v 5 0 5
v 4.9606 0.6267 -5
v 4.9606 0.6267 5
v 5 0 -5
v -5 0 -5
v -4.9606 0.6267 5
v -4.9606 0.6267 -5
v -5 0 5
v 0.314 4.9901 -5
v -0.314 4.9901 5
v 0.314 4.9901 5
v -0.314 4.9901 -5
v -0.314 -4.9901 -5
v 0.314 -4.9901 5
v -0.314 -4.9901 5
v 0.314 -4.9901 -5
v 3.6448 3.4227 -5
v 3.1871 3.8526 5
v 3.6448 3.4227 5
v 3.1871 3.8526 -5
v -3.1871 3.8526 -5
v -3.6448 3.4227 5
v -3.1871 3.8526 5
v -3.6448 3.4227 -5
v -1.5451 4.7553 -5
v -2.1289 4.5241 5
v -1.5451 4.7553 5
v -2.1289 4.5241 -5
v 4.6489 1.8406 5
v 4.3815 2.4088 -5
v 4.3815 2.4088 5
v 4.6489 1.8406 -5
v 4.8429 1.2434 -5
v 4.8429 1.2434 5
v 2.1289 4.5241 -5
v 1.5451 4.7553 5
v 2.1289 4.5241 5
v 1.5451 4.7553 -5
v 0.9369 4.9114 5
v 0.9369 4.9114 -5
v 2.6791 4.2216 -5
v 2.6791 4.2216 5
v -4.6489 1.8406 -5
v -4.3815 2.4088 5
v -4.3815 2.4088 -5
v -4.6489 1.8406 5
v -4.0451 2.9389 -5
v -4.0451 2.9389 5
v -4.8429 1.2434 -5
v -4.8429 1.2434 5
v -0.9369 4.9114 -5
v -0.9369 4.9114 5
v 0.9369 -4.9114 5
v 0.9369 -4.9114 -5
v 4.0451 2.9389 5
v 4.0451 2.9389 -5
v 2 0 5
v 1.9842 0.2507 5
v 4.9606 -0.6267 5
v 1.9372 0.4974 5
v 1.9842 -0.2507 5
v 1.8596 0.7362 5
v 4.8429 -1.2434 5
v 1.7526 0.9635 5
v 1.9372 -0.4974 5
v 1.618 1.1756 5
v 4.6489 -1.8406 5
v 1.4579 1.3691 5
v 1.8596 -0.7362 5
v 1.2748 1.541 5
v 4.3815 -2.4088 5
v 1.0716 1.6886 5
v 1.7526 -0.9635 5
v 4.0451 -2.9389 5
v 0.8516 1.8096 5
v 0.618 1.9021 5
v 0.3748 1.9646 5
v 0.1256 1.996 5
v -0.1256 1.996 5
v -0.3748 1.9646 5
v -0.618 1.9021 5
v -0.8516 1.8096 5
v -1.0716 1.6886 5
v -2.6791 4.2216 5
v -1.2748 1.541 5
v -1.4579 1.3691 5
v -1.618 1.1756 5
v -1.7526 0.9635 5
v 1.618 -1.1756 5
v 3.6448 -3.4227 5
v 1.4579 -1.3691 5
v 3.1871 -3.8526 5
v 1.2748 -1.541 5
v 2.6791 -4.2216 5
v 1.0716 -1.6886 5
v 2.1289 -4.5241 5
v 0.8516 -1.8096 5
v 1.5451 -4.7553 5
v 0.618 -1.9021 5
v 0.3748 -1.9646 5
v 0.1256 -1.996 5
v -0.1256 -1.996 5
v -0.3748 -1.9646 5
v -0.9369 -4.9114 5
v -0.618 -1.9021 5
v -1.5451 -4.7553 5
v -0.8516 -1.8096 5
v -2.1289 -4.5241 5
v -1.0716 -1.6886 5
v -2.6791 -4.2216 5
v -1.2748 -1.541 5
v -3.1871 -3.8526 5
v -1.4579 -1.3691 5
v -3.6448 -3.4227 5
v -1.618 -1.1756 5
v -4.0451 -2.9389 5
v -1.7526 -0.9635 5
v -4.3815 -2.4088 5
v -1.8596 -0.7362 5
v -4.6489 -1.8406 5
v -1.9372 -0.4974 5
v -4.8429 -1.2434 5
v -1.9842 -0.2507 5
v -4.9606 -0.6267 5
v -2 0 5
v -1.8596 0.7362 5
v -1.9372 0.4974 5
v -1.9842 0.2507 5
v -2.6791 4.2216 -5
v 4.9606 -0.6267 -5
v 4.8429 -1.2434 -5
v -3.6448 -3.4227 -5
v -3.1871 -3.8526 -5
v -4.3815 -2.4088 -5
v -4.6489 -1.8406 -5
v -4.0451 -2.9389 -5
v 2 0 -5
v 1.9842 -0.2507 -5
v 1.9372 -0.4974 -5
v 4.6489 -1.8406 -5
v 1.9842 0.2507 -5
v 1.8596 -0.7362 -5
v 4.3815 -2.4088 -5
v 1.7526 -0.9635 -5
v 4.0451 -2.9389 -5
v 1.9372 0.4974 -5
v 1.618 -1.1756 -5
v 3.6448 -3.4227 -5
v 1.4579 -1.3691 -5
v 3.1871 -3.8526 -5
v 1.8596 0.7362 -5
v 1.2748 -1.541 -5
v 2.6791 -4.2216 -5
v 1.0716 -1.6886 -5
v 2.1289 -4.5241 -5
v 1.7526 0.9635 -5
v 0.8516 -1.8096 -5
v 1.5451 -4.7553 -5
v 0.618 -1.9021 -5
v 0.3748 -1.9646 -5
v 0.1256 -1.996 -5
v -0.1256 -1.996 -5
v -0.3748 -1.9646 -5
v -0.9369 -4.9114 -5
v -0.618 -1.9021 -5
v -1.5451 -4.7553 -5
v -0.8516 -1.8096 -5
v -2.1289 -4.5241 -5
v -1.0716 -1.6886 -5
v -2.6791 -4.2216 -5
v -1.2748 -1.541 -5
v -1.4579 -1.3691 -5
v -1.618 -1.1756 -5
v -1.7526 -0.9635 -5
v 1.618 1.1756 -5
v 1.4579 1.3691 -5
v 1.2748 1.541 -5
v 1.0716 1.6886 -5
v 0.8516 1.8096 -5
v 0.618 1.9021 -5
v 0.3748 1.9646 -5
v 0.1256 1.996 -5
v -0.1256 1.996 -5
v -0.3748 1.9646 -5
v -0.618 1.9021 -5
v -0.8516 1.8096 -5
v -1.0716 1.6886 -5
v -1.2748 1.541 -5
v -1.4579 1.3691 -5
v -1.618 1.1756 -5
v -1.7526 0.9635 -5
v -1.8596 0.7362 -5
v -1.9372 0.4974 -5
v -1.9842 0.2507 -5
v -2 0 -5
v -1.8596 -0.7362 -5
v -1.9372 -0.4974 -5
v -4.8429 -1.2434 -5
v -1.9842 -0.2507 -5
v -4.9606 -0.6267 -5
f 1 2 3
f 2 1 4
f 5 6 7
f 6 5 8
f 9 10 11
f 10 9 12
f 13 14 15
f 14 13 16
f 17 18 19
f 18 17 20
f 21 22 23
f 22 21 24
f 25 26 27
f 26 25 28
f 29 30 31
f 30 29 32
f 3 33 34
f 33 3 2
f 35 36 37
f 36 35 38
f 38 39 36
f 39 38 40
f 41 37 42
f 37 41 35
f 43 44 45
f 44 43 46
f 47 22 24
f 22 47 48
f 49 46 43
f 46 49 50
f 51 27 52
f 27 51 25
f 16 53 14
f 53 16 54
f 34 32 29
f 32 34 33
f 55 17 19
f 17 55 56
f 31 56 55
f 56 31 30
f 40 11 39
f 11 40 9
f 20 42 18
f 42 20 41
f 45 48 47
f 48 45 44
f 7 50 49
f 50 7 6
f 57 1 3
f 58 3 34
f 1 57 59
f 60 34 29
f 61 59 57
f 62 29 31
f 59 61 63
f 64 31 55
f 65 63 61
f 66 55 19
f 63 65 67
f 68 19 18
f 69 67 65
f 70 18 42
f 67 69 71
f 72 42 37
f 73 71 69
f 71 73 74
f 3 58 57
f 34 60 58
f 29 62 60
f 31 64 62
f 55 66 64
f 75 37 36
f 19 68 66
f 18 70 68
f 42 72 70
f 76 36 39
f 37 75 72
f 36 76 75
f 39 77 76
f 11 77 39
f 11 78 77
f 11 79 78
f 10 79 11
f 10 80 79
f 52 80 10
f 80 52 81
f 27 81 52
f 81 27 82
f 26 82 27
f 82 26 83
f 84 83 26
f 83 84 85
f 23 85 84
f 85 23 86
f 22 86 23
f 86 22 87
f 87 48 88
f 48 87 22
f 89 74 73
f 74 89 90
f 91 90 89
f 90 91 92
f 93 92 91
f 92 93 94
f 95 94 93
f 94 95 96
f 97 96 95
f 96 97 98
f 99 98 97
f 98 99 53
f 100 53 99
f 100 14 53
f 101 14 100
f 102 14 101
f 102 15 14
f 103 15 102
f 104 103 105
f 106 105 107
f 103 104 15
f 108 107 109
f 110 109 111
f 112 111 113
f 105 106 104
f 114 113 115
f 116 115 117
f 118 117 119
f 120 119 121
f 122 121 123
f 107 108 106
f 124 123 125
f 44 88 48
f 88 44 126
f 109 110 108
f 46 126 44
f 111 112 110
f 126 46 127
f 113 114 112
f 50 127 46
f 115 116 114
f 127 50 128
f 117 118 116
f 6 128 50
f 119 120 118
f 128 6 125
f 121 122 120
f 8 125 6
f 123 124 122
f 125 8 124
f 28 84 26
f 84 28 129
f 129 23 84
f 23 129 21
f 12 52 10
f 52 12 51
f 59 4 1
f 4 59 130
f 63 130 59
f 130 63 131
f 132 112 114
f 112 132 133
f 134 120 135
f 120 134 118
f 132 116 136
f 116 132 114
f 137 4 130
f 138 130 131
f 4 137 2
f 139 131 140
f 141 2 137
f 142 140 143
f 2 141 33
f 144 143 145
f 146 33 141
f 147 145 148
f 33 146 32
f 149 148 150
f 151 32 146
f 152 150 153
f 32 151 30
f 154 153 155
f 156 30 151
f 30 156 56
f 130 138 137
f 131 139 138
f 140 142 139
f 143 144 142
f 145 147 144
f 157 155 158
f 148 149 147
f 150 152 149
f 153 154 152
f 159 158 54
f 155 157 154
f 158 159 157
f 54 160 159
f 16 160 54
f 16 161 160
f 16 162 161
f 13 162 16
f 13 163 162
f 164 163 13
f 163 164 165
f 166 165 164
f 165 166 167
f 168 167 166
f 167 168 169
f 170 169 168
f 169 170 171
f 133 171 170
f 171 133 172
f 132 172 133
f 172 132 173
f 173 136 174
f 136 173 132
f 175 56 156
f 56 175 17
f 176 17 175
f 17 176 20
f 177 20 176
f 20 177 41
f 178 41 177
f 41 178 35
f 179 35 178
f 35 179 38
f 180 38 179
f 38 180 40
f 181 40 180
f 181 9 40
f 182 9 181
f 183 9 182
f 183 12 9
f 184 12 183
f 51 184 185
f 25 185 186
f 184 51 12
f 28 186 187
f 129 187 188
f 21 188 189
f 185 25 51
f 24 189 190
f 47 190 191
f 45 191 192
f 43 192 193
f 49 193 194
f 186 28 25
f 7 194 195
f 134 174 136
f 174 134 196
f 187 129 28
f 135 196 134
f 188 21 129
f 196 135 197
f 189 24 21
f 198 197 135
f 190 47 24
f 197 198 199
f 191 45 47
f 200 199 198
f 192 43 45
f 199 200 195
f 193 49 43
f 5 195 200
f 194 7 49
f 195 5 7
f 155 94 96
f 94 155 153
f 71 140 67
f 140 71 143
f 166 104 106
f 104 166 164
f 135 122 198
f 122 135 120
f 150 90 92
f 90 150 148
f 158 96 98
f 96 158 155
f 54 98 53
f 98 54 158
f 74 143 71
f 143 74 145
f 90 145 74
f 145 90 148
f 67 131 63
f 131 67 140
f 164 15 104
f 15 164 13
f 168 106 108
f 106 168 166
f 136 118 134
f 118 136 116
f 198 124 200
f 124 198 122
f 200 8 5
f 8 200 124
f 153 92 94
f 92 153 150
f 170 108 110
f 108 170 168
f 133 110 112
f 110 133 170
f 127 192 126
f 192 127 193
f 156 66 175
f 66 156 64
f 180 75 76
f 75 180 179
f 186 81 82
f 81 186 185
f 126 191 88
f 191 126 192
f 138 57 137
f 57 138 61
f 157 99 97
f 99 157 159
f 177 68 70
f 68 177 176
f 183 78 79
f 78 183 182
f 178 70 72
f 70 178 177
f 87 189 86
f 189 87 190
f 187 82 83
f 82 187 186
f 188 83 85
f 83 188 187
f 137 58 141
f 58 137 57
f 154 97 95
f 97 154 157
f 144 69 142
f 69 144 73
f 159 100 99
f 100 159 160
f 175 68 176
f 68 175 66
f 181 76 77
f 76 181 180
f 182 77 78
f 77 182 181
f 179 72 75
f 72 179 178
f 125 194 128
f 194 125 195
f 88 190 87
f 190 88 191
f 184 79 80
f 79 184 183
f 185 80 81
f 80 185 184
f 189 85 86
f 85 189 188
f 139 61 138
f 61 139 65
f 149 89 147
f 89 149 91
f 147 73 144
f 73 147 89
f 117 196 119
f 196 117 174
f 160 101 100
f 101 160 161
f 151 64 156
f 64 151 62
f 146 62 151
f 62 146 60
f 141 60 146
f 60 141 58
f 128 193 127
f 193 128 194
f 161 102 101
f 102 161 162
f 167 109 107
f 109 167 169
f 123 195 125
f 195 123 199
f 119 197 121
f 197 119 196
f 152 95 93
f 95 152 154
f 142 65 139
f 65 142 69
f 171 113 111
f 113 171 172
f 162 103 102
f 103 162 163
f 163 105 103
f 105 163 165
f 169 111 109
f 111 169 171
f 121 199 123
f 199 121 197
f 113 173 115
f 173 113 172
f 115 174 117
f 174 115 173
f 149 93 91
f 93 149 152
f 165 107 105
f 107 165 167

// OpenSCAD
$fn = 50;


difference() {
	union() {
		translate(v = [0, 0, -5.0000000000]) {
			cylinder(h = 10, r = 5.0000000000);
		}
	}
	union() {
		translate(v = [0, 0, -100.0000000000]) {
			cylinder(h = 200, r = 2);
		}
	}
}
